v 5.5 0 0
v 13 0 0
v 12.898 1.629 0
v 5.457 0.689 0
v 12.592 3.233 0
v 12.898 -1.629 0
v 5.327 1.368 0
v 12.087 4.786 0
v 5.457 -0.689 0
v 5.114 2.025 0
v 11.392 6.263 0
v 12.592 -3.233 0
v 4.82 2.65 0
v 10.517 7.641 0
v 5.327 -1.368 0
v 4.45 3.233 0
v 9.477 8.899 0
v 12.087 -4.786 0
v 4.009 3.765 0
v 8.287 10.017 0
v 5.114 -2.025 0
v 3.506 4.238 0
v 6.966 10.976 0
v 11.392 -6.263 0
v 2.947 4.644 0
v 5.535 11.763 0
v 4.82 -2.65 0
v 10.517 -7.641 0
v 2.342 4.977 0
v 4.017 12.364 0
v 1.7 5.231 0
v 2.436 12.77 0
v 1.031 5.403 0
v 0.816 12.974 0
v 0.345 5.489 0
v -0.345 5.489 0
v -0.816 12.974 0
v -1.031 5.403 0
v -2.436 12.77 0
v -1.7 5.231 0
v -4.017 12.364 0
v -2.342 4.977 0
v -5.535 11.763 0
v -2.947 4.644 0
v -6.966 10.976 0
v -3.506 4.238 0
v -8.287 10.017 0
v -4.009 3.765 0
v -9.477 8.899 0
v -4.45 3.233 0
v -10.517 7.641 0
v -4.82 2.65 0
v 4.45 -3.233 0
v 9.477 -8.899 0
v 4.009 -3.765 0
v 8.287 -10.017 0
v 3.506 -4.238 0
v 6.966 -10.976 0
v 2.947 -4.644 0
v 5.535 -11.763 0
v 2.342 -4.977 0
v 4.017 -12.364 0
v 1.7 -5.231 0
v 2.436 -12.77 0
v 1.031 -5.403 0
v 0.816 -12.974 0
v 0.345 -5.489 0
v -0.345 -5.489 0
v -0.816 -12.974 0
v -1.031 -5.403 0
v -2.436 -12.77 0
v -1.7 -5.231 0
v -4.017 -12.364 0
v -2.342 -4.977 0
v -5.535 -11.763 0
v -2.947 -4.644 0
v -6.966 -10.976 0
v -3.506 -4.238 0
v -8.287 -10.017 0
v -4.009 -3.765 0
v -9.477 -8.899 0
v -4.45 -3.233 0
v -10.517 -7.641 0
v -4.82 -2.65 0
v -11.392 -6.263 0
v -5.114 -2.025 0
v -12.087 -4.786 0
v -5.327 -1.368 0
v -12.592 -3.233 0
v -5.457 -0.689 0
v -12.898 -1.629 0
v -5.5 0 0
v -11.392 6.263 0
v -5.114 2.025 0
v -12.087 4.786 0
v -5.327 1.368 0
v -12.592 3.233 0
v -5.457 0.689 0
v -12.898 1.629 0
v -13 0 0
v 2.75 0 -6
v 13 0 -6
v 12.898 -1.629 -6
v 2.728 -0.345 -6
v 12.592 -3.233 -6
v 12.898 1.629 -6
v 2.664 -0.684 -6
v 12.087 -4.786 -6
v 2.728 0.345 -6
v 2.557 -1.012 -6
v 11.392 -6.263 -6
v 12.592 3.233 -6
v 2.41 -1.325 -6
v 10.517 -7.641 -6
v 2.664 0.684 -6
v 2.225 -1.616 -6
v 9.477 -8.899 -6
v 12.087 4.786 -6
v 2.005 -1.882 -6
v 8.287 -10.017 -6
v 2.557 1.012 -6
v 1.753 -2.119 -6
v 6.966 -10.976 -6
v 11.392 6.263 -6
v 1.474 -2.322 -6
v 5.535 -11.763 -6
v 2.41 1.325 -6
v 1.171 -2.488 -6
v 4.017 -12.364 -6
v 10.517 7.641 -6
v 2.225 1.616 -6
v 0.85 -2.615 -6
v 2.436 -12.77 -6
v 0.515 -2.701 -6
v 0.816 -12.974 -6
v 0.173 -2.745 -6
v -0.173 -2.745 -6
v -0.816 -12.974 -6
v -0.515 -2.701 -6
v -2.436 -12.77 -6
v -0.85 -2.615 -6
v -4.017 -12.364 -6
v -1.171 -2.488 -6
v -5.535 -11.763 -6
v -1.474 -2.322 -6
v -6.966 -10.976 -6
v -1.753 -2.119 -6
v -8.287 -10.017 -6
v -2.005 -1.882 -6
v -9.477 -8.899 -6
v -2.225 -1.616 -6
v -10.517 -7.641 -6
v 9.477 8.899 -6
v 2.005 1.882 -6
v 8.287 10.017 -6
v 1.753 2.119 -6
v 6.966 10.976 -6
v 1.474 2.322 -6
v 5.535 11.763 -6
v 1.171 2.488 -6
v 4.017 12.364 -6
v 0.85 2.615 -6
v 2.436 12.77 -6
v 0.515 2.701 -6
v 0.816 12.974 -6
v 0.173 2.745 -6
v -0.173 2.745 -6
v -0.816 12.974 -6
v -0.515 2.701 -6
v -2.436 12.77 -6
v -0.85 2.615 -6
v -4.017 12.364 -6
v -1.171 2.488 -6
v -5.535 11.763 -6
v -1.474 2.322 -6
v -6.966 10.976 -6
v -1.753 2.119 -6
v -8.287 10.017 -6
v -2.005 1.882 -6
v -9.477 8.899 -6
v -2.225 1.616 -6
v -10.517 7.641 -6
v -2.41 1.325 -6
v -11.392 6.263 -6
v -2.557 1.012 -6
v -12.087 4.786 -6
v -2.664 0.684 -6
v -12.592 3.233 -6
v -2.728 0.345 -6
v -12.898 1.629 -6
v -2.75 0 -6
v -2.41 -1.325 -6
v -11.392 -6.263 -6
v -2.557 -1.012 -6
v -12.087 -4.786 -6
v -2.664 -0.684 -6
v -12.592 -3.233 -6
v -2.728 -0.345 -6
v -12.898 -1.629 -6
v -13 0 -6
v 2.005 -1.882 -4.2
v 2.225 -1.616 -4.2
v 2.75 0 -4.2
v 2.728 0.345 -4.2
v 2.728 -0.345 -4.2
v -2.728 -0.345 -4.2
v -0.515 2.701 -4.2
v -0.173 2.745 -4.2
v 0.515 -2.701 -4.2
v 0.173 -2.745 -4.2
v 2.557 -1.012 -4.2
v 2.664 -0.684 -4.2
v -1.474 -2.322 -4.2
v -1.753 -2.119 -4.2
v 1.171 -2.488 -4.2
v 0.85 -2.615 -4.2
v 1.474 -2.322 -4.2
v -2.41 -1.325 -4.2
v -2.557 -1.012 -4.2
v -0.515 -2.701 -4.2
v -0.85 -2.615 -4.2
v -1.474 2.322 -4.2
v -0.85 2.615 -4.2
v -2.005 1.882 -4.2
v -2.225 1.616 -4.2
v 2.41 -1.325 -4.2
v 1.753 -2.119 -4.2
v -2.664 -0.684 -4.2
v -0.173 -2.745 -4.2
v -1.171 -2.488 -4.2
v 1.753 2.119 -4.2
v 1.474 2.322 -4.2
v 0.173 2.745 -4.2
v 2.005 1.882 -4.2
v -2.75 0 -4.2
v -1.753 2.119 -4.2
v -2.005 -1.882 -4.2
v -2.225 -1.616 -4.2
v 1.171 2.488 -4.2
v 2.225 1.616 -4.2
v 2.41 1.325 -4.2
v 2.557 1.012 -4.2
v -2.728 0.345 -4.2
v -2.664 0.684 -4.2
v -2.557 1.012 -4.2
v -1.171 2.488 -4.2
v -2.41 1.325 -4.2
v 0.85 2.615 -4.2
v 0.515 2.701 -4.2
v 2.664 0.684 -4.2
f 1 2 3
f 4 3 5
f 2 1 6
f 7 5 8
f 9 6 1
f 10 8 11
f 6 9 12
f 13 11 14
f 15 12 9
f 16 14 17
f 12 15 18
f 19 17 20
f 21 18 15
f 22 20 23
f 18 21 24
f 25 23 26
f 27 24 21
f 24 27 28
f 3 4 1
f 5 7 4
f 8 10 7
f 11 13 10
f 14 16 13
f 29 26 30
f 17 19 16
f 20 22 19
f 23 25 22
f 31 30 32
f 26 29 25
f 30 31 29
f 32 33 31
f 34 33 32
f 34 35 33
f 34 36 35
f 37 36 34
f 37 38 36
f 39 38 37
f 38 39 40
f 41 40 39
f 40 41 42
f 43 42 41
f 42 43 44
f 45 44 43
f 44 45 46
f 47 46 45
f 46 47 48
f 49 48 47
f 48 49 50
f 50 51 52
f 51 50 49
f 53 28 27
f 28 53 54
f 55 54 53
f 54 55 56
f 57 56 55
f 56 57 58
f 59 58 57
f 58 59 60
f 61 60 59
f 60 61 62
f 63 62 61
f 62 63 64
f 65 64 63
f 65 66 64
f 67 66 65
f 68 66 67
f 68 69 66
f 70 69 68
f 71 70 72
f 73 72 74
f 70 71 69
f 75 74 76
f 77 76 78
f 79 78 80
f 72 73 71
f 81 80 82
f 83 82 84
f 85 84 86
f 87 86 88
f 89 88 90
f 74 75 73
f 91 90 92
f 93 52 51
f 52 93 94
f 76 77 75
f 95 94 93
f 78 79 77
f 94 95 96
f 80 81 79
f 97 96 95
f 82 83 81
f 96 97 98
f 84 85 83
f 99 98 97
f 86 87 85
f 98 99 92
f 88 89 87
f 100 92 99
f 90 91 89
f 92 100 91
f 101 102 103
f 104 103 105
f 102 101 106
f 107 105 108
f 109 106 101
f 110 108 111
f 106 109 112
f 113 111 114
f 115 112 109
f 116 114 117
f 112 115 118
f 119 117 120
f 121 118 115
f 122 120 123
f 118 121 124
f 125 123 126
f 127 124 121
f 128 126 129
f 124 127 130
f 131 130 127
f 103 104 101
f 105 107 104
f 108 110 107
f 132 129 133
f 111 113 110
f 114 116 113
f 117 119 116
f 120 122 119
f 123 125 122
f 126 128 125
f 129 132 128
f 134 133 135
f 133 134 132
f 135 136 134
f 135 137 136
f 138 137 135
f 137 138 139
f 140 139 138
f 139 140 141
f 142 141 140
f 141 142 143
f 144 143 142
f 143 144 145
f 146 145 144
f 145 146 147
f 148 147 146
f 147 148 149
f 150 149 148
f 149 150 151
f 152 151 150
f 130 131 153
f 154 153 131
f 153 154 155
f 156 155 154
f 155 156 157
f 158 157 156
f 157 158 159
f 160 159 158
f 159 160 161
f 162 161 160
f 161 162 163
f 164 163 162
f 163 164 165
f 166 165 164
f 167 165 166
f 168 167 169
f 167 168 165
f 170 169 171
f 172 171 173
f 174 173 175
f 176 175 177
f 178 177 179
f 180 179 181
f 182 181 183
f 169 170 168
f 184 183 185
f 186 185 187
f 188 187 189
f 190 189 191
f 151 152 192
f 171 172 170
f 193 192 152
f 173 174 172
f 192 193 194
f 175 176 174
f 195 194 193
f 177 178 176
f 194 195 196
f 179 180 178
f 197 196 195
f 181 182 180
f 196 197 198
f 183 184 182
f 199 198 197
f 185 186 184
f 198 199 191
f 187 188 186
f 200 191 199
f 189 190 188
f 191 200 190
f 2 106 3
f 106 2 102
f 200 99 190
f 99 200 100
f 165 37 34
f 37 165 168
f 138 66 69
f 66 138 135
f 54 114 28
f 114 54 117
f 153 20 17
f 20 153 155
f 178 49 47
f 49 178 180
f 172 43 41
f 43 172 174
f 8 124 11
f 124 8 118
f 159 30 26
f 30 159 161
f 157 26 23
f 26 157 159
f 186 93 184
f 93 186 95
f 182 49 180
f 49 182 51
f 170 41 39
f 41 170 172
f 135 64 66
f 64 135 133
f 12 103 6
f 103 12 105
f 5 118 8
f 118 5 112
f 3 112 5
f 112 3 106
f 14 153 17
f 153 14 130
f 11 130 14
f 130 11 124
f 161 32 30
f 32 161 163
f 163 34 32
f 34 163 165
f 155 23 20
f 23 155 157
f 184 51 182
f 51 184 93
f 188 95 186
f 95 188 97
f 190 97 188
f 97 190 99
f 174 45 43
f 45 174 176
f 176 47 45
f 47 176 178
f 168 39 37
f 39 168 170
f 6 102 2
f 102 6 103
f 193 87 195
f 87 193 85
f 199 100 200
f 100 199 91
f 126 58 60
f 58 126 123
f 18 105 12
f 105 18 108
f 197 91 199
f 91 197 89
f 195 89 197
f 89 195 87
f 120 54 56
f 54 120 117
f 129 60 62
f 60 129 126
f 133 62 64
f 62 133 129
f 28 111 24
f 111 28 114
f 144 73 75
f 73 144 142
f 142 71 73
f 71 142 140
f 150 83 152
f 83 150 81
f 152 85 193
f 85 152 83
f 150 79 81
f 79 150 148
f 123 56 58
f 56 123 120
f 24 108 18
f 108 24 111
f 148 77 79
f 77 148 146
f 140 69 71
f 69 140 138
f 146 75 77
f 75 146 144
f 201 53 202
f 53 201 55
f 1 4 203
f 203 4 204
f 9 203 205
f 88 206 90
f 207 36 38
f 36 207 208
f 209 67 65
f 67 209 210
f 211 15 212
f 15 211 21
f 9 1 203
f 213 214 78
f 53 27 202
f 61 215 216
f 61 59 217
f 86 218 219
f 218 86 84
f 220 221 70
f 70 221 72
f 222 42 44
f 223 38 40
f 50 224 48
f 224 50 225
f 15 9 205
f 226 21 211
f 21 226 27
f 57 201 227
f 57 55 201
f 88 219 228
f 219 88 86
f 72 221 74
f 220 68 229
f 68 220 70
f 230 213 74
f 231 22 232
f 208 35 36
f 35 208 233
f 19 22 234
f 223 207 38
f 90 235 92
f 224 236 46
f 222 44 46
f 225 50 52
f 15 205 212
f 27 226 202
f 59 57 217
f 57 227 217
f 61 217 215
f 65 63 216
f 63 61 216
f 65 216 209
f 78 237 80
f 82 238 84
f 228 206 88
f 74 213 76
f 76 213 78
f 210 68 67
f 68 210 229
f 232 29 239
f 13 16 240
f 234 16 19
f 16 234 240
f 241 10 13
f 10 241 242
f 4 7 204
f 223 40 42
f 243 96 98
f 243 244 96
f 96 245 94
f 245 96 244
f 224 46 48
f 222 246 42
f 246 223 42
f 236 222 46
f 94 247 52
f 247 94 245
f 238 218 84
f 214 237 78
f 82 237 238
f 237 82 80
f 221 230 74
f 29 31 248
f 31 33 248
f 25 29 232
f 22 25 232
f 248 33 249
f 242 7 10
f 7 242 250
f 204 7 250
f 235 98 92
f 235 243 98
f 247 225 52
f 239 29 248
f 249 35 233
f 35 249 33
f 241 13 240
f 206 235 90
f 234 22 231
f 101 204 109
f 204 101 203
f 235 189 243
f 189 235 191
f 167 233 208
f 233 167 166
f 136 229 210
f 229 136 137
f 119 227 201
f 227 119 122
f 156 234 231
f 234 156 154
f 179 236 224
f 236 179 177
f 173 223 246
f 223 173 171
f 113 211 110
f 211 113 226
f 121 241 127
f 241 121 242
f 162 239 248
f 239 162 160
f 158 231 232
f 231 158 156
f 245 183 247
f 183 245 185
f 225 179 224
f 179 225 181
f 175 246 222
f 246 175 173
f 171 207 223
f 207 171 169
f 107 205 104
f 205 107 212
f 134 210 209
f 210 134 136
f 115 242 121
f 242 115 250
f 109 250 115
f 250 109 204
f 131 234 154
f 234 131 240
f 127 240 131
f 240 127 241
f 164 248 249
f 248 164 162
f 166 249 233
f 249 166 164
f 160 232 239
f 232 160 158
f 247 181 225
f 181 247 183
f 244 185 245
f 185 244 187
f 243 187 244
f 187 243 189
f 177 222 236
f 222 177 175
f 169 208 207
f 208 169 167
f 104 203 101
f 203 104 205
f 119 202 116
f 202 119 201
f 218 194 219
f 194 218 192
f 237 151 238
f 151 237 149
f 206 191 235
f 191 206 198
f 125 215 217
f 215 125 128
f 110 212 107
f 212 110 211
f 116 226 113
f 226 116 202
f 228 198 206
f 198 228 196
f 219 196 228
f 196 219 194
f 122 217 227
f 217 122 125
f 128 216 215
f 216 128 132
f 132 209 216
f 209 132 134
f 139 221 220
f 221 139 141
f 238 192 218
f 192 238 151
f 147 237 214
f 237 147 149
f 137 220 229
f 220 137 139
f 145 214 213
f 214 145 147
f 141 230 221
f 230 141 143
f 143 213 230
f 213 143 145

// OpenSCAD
$fn = 50;


difference() {
	union() {
		translate(v = [0, 0, -6.0000000000]) {
			cylinder(h = 6, r = 10.0000000000);
		}
		translate(v = [0, 0, -6.0000000000]) {
			cylinder(h = 6, r = 13.0000000000);
		}
	}
	union() {
		translate(v = [0, 0, 0]) {
			rotate(a = [0, 0, 0]) {
				difference() {
					union() {
						#translate(v = [0, 0, -6.0000000000]) {
							cylinder(h = 6, r = 2.2500000000);
						}
						#translate(v = [0, 0, -4.2000000000]) {
							cylinder(h = 4.2000000000, r1 = 2.7500000000, r2 = 5.5000000000);
						}
						#translate(v = [0, 0, -6.0000000000]) {
							cylinder(h = 6, r = 2.7500000000);
						}
						#translate(v = [0, 0, -6.0000000000]) {
							cylinder(h = 6, r = 2.2500000000);
						}
					}
					union();
				}
			}
		}
	}
}
